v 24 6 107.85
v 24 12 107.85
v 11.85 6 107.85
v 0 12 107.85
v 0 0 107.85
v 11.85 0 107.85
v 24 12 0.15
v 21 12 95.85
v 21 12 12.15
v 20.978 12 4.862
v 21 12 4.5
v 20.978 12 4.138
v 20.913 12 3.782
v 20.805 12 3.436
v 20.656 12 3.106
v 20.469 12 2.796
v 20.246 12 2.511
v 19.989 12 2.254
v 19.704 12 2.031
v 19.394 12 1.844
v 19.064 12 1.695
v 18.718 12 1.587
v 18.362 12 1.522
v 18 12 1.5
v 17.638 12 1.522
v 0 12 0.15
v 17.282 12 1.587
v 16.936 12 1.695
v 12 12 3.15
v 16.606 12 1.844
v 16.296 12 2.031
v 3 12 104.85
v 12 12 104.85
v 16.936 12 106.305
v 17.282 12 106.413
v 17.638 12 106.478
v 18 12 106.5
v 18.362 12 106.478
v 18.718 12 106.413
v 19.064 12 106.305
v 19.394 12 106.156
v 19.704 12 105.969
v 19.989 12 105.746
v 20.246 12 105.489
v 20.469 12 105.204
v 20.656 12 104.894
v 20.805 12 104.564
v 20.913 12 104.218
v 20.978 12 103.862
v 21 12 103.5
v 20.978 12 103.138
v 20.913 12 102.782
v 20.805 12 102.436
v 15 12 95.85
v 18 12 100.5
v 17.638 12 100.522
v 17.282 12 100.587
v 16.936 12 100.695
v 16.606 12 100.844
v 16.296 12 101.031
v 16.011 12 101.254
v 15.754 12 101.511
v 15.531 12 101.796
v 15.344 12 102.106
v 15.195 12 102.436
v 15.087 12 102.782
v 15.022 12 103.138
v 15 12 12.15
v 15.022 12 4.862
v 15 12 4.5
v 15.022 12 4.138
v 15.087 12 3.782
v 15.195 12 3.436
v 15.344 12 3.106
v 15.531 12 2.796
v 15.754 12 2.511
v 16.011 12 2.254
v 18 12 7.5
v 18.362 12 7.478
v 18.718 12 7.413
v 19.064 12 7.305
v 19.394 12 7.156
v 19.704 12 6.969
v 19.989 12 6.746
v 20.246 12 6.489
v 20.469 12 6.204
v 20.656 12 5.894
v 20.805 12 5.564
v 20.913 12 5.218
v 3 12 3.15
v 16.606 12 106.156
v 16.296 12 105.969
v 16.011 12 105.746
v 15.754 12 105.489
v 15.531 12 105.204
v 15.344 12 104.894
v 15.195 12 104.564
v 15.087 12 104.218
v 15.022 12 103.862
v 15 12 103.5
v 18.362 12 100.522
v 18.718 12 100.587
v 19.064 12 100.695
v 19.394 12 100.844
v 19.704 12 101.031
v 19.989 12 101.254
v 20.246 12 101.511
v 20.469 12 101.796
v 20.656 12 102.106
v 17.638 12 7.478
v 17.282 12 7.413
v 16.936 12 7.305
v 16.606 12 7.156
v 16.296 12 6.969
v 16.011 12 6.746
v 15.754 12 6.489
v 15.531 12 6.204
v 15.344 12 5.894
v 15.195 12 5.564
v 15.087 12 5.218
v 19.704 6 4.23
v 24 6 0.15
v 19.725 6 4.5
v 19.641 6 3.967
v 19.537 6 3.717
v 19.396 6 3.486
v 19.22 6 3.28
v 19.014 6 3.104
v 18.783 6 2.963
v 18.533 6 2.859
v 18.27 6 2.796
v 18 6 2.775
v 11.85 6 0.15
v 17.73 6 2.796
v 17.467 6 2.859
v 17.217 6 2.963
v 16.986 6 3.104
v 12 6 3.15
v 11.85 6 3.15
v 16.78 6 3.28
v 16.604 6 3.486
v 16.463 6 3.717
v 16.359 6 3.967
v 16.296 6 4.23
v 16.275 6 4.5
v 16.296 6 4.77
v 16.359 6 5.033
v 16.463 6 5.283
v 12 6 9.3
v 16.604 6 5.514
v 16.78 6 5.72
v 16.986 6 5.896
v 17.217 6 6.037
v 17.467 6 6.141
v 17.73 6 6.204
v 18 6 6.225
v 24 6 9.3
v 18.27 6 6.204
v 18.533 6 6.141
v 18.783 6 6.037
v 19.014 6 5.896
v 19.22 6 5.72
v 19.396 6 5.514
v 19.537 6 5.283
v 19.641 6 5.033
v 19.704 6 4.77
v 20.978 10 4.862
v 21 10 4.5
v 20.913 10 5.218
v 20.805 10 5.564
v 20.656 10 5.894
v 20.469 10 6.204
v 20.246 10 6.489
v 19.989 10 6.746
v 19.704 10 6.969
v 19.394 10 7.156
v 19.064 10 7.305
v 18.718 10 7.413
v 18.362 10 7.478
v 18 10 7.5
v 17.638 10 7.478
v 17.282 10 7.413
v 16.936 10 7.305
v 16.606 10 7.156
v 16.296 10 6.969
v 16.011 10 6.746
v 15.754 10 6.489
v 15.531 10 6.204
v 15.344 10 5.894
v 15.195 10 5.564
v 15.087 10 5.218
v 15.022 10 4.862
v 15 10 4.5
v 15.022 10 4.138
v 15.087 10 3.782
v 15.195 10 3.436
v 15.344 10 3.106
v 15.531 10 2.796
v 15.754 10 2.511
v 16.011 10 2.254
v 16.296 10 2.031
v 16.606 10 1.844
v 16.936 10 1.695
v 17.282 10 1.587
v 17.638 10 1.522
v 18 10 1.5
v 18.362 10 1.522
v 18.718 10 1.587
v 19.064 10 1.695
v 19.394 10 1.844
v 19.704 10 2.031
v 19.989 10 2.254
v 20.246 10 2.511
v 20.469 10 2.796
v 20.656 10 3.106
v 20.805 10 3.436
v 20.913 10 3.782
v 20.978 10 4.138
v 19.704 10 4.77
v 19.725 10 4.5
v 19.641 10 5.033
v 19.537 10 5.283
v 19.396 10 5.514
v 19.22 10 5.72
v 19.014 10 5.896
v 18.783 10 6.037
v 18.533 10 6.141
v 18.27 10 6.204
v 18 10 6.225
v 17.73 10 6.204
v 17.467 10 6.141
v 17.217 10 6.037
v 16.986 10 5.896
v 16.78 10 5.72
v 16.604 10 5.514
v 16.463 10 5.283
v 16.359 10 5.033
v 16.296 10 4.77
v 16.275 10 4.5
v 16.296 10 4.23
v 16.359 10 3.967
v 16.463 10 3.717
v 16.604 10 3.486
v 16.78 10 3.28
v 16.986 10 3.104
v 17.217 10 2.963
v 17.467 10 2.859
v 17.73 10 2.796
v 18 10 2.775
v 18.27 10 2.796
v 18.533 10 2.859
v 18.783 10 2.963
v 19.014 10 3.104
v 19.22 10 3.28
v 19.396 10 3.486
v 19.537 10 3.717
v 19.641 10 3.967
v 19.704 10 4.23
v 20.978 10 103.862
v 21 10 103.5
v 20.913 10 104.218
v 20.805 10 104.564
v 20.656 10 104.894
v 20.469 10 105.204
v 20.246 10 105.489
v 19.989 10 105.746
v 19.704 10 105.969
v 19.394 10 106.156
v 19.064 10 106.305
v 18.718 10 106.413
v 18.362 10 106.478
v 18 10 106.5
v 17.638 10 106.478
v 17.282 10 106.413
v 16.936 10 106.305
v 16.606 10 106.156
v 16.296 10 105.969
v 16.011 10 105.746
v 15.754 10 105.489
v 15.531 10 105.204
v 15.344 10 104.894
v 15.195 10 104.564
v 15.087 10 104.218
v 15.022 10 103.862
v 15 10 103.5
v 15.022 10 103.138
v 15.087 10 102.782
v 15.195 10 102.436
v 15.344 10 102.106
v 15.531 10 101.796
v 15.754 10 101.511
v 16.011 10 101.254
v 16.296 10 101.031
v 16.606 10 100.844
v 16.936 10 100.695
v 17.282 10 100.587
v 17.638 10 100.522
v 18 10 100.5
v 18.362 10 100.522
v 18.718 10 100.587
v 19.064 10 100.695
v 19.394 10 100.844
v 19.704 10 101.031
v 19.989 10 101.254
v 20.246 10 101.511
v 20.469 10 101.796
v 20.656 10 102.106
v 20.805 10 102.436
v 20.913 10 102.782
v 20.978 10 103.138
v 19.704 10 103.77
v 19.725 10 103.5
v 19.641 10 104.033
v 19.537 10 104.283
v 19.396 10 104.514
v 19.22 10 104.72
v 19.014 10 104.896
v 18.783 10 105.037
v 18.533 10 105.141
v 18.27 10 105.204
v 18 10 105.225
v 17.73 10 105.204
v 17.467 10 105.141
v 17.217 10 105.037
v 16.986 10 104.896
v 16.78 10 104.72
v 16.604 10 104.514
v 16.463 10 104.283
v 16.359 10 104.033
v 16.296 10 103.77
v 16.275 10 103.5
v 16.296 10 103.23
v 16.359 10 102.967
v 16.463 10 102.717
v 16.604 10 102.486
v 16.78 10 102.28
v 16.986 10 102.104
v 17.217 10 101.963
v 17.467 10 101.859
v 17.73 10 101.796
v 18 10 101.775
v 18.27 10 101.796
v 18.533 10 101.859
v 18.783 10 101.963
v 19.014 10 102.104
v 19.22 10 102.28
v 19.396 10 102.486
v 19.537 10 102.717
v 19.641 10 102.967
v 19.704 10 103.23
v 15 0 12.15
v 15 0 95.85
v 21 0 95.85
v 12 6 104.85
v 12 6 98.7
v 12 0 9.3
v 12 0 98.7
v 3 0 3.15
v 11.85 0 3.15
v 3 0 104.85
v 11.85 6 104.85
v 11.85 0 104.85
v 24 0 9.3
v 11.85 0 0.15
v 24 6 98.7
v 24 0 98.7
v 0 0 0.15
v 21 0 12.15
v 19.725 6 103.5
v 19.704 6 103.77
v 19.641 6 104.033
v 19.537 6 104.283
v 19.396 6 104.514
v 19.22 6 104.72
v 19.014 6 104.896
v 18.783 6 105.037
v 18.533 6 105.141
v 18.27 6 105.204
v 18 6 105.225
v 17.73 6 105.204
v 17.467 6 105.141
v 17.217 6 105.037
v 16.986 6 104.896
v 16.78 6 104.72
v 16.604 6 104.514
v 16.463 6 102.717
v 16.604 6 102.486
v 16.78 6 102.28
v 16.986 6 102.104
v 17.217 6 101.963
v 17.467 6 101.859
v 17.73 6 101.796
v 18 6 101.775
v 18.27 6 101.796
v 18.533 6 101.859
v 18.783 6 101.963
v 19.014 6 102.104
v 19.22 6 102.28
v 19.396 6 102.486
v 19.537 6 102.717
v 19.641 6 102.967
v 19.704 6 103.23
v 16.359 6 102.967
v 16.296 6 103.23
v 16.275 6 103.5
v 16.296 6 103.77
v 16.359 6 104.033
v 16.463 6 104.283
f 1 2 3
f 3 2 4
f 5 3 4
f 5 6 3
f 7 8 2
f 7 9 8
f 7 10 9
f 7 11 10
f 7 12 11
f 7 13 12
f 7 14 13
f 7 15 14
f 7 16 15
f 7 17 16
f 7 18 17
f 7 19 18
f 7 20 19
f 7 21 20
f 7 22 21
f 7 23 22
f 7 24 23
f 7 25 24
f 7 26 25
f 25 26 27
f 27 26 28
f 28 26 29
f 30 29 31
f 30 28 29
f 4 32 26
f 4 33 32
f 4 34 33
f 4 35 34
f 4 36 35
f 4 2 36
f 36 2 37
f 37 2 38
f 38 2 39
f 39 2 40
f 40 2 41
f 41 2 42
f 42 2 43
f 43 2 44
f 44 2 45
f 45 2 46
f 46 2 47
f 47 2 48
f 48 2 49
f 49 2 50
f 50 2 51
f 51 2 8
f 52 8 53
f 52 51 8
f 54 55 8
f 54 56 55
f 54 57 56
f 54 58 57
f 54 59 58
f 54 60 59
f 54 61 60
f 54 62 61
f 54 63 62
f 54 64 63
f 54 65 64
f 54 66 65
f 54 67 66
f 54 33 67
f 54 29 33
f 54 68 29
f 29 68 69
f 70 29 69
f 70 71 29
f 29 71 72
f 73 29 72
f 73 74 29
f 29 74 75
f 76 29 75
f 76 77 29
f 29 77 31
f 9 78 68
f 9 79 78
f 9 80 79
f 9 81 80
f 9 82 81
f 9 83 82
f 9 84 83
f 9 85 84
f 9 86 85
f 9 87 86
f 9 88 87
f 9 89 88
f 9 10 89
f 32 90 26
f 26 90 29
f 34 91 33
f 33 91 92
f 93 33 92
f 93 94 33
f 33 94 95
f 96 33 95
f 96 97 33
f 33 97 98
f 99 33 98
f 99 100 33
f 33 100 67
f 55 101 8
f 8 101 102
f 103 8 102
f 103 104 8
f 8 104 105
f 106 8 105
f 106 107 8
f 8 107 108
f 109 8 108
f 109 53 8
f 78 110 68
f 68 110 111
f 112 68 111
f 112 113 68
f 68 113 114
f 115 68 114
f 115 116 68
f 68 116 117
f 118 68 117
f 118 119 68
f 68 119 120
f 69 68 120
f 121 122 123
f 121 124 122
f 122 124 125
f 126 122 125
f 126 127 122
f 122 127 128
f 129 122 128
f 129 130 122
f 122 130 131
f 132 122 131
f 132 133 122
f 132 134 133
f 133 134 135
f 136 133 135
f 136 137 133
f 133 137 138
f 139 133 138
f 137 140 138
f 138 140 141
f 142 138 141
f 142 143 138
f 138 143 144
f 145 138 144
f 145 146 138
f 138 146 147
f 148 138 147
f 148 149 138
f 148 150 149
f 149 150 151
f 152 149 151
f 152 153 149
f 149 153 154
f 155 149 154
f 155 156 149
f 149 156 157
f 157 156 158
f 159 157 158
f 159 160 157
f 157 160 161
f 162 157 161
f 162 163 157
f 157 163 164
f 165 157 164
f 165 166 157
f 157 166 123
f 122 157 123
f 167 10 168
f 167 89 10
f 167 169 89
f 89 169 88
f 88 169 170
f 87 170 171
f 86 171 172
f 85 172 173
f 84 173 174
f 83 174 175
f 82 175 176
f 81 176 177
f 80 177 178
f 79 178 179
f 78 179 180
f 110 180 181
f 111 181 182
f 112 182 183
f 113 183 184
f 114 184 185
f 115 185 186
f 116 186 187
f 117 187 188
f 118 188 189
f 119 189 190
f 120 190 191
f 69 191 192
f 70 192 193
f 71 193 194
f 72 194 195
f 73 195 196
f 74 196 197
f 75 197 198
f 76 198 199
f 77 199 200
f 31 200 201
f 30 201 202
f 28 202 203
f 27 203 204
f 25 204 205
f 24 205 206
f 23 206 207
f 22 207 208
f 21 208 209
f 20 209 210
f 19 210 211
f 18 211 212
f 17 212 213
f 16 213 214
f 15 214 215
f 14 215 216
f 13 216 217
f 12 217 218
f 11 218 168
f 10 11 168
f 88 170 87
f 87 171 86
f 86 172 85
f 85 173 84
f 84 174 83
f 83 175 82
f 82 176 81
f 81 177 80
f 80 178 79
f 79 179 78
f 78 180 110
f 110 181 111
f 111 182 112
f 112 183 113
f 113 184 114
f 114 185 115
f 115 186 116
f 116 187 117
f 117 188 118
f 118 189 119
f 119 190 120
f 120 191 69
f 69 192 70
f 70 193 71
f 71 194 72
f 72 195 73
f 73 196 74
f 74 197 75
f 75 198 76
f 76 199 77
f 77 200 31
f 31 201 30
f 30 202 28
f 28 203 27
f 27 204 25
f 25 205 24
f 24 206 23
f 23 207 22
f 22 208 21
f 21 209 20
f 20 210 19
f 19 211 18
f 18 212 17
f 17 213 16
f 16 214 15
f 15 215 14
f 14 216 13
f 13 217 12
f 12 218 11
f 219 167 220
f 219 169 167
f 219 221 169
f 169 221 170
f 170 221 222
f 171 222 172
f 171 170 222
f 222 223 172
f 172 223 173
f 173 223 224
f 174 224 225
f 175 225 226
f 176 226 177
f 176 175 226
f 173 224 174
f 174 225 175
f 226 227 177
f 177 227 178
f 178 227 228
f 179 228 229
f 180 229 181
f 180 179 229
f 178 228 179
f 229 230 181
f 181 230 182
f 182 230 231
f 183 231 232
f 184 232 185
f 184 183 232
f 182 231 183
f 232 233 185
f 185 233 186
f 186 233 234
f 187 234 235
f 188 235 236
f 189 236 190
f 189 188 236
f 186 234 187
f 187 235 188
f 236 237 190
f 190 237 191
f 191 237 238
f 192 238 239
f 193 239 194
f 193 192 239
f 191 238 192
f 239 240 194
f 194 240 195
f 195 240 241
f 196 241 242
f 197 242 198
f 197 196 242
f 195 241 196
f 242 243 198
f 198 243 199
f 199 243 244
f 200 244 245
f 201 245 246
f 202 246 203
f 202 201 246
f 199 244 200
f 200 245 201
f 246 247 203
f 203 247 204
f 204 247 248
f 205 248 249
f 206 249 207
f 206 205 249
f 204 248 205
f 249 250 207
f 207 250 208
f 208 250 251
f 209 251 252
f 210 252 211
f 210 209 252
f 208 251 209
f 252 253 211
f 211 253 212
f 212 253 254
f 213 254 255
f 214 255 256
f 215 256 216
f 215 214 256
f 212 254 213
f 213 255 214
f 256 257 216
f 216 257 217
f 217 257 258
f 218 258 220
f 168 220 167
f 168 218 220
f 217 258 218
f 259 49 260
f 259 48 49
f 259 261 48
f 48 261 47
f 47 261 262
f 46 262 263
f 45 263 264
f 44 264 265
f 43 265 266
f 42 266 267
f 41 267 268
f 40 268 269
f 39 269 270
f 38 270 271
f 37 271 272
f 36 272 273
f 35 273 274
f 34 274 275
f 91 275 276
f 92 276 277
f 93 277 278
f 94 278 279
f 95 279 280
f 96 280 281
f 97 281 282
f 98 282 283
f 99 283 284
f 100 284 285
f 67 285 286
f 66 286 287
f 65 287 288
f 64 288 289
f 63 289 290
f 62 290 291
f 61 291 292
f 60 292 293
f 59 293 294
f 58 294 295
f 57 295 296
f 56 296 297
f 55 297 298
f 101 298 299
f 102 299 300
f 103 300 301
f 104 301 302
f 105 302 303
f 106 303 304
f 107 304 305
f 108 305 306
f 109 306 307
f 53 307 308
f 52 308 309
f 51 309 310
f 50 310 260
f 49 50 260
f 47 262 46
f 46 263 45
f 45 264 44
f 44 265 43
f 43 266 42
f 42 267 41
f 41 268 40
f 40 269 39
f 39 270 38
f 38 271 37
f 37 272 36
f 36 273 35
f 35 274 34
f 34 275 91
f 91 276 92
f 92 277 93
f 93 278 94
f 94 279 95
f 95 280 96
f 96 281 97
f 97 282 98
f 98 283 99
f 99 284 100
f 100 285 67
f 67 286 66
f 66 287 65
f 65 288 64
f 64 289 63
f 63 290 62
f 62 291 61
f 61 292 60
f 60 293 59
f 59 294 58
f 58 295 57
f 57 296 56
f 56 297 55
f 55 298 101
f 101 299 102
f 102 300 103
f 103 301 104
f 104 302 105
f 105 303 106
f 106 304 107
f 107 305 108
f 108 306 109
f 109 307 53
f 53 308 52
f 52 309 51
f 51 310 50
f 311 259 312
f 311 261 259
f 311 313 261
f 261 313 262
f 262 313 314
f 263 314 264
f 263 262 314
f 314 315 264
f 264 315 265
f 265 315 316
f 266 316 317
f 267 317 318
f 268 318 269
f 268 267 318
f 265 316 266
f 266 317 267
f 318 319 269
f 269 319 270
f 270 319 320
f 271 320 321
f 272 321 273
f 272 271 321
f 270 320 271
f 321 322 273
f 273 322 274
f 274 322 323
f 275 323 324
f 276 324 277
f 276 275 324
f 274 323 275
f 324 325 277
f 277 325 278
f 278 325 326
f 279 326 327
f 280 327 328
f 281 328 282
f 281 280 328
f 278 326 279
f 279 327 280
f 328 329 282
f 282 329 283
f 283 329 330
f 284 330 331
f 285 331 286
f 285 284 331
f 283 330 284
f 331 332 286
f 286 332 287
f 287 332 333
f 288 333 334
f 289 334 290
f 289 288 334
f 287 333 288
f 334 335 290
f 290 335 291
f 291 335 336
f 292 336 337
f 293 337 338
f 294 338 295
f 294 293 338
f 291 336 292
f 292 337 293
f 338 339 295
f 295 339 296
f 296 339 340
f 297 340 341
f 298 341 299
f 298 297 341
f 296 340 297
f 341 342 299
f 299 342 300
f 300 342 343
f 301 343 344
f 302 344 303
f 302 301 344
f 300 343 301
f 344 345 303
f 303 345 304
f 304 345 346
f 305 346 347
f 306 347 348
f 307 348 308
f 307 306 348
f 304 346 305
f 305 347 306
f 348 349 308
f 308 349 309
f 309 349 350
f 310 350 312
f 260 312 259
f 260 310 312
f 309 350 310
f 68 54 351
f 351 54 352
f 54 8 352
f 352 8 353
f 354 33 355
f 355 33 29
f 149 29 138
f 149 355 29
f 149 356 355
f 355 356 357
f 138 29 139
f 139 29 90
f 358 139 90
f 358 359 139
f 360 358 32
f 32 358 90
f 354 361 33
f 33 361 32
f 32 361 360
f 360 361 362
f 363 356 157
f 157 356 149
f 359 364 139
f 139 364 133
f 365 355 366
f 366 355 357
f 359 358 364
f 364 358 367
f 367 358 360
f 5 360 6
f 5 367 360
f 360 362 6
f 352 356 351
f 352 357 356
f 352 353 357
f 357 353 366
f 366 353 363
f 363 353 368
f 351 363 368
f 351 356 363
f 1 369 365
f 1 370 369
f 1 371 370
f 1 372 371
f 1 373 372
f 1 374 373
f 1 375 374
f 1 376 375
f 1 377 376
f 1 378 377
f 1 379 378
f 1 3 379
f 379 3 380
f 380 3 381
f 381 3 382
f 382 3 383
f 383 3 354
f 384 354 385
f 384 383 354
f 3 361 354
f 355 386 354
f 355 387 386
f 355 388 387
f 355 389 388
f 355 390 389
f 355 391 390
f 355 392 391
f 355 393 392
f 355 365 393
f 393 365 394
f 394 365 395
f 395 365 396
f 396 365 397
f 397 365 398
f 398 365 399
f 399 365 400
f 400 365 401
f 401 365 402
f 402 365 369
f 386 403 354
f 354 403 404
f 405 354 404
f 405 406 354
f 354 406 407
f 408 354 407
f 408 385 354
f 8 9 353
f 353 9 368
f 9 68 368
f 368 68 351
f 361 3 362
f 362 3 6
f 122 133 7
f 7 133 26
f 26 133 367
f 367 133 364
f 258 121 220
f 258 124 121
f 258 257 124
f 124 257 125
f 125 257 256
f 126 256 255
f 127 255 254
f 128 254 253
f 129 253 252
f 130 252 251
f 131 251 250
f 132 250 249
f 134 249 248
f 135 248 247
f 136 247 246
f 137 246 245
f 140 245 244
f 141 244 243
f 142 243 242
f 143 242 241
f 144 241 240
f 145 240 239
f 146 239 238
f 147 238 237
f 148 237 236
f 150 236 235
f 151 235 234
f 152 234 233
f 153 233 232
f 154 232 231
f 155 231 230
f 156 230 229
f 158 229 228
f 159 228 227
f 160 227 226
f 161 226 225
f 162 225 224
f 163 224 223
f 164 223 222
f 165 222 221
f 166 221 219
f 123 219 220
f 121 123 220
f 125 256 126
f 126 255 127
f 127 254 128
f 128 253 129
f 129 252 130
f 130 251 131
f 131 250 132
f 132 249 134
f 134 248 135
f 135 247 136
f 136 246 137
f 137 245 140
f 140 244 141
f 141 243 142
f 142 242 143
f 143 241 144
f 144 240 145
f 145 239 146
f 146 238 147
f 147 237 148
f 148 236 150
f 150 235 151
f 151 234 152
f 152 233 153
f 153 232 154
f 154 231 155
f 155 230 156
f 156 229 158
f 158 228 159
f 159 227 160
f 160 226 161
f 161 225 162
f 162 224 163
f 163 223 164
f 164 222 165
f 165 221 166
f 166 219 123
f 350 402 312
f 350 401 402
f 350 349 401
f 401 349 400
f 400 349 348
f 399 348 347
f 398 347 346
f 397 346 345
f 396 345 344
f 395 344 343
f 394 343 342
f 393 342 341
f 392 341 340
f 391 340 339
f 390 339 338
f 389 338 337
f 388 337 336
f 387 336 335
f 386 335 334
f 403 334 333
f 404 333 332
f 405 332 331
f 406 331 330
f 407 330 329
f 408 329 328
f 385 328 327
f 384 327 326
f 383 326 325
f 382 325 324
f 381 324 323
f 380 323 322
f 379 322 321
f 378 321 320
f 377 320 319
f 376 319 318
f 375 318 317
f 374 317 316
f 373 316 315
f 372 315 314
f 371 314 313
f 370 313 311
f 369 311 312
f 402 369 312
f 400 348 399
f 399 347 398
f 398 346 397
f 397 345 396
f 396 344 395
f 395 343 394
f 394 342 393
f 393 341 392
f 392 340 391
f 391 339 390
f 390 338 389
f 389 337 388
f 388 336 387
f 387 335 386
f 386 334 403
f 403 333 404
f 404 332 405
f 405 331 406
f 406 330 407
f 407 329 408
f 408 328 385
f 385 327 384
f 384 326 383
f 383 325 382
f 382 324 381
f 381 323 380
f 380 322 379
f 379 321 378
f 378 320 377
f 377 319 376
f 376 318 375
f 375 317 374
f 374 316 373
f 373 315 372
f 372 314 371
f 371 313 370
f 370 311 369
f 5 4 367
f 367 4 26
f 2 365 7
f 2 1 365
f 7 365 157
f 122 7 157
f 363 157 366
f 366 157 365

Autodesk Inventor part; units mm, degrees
ref_plane "YZ Plane" through (0, 0, 0) normal (1, 0, 0) x (0, 1, 0)
ref_plane "XZ Plane" through (0, 0, 0) normal (0, 1, 0) x (-1, 0, 0)
ref_plane "XY Plane" through (0, 0, 0) normal (0, 0, 1) x (1, 0, 0)
sketch "Sketch1" plane through (0, 0, 0) normal (0, 0, 1) x (1, 0, 0)
  line L0 (0, 0) -> (36, 0)
  line L1 (36, 0) -> (36, 12)
  line L2 (36, 12) -> (24, 12)
  line L3 (24, 12) -> (24, 22)
  line L4 (24, 22) -> (12, 22)
  line L5 (12, 22) -> (12, 12)
  line L6 (12, 12) -> (0, 12)
  line L7 (0, 12) -> (0, 0)
  dimension "d0" = 36
  dimension "d1" = 12
  dimension "d2" = 12
  dimension "d3" = 10
  dimension "d4" = 12
extrude "Extrusion1" add sketch "Sketch1" along normal blind 108
sketch "Sketch2" plane through (0, 0, 0) normal (0, -1, 0) x (1, 0, 0)
  circle A0 centre (18, 4.5) radius 1.725
  line L0 (0, 0) -> (36, 0) projected
  line L1 (36, 0) -> (36, 108) projected
  circle A1 centre (18, 103.5) radius 1.725
  line L2 (0, 108) -> (36, 108) projected
  dimension "d7" = 3.45
  dimension "d8" = 4.5
  dimension "d9" = 18
  dimension "d10" = 3.45
  dimension "d11" = 18
  dimension "d12" = 4.5
extrude "Extrusion2" cut sketch "Sketch2" against normal blind 20
sketch "Sketch3" plane through (12, 22, 0) normal (0, 1, 0) x (1, 0, 0)
  circle A0 centre (6, -4.5) radius 1.725 projected
  circle A1 centre (6, -4.5) radius 3
  circle A2 centre (6, -103.5) radius 1.725 projected
  circle A3 centre (6, -103.5) radius 3
  point P0 (-12, 0)
  dimension "d15" = 6
  dimension "d16" = 6
extrude "Extrusion3" cut sketch "Sketch3" against normal blind 2 contours A0 | A1 | A2 | A3
sketch "Sketch4" plane through (36, 0, 0) normal (1, 0, 0) x (0, 0, -1)
  line L0 (-108, 0) -> (-107.85, 0)
  line L1 (0, 0) -> (-108, 0) projected
  line L2 (-107.85, 0) -> (-107.85, 12)
  line L3 (0, 12) -> (-108, 12) projected
  line L4 (-108, 0) -> (-108, 12) projected
  line L5 (-108, 12) -> (-108, 0)
  line L6 (-108, 22) -> (-107.85, 22)
  line L7 (-107.85, 12) -> (-108, 12)
  line L8 (0, 0) -> (-0.15, 0)
  line L9 (-0.15, 0) -> (-0.15, 12)
  line L10 (-0.15, 12) -> (0, 12)
  line L11 (0, 12) -> (0, 0)
  line L12 (0, 22) -> (-0.15, 22)
  line L13 (-0.15, 12) -> (0, 12)
  dimension "d19" = 0.15
  dimension "d20" = 12
  dimension "d21" = 0.15
  dimension "d22" = 0.15
extrude "Extrusion4" cut sketch "Sketch4" against normal through all contours L4 L3 L2 L0 | L9 L3 L11 L1
sketch "Sketch5" plane through (24, 22, 108) normal (1, 0, 0) x (0, 0, -1)
  line L0 (108, -10) -> (108, 0) projected
  line L1 (108, 0) -> (0, 0) projected
  line L2 (108, -10) -> (107.85, -10)
  line L3 (107.85, -10) -> (107.85, 0)
  line L4 (107.85, 0) -> (108, 0)
  line L5 (108, 0) -> (108, -10)
  line L6 (0.15, -10) -> (0, -10) projected
  line L7 (0, -10) -> (0, 0) projected
  line L8 (0.15, -10) -> (0, -10)
  line L9 (0, -10) -> (0, 0)
  line L10 (0, 0) -> (0.15, 0)
  line L11 (0.15, 0) -> (0.15, -10)
  point P0 (108, -22)
  dimension "d25" = 0.15
extrude "Extrusion5" cut sketch "Sketch5" against normal through all
sketch "Sketch6" plane through (12, 22, 0.15) normal (0, 1, 0) x (1, 0, 0)
  point P0 (0, -107.7)
sketch "Sketch7" plane through (0, 0, 107.85) normal (0, -1, 0) x (1, 0, 0)
  line L0 (0, -107.7) -> (36, -107.7) projected
  line L1 (11.85, -107.7) -> (24.15, -107.7)
  line L2 (24.15, -107.7) -> (24.15, -98.55)
  line L3 (24.15, -98.55) -> (11.85, -98.55)
  line L4 (11.85, -98.55) -> (11.85, -107.7)
  line L5 (0, 0) -> (12, 0) projected
  line L6 (11.85, 0) -> (24.15, 0)
  line L7 (24.15, 0) -> (24.15, -9.15)
  line L8 (24.15, -9.15) -> (11.85, -9.15)
  line L9 (11.85, -9.15) -> (11.85, 0)
  line L10 (36, -107.7) -> (36, 0) projected
  point P0 (0, -107.85)
  dimension "d30" = 11.85
  dimension "d31" = 11.85
  dimension "d32" = 9.15
  dimension "d33" = 11.85
  dimension "d34" = 11.85
  dimension "d35" = 9.15
extrude "Extrusion6" cut sketch "Sketch7" against normal blind 6
sketch "Sketch8" plane through (36, 0, 0.15) normal (0, -1, 0) x (1, 0, 0)
  line L0 (-21, 95.7) -> (-15, 95.7)
  line L1 (-15, 95.7) -> (-15, 12)
  line L2 (-15, 12) -> (-21, 12)
  line L3 (-21, 12) -> (-21, 95.7)
  line L4 (-11.85, 0) -> (-24.15, 0) projected
  line L5 (0, 107.7) -> (-11.85, 107.7) projected
  line L6 (-24, 0) -> (-24, 107.7) projected
  line L7 (-12, 0) -> (-12, 107.7) projected
  point P0 (-36, -0.15)
  dimension "d38" = 12
  dimension "d39" = 12
  dimension "d40" = 3
  dimension "d41" = 3
extrude "Extrusion7" cut sketch "Sketch8" against normal through all
sketch "Sketch9" plane through (24, 12, 107.85) normal (0, 1, 0) x (1, 0, 0)
  line L0 (9, 3) -> (0, 3)
  line L1 (0, 3) -> (0, 104.7)
  line L2 (0, 104.7) -> (9, 104.7)
  line L3 (9, 104.7) -> (9, 3)
  line L4 (-12, 3) -> (-21, 3)
  line L5 (-21, 3) -> (-21, 104.7)
  line L6 (-21, 104.7) -> (-12, 104.7)
  line L7 (-12, 104.7) -> (-12, 3)
  line L8 (12, 0) -> (0.15, 0) projected
  line L9 (12, 107.7) -> (0, 107.7) projected
  line L10 (12, 107.7) -> (12, 0) projected
  line L11 (-24, 107.7) -> (-24, 0) projected
  line L12 (-12, 107.7) -> (-24, 107.7) projected
  line L13 (-24, 0) -> (-12, 0) projected
  line L14 (-12, 107.7) -> (-12, 0) projected
  line L15 (0, 107.7) -> (0, 0) projected
  point P0 (-24, 107.85)
  dimension "d44" = 3
  dimension "d45" = 3
  dimension "d46" = 3
  dimension "d47" = 3
  dimension "d48" = 3
  dimension "d49" = 3
  dimension "d50" = 0
  dimension "d51" = 0
extrude "Extrusion8" cut sketch "Sketch9" against normal through all contours L0 L1 L2 L3 | L4 L5 L6 L7
sketch "Sketch10" plane through (12, 0, 98.7) normal (0, -1, 0) x (1, 0, 0)
  line L0 (3, -86.55) -> (3, -2.85) projected
  line L1 (9, -2.85) -> (9, -86.55) projected
  line L2 (3, -2.85) -> (9, -2.85)
  line L3 (9, -2.85) -> (9, -86.55)
  line L4 (9, -86.55) -> (3, -86.55)
  line L5 (3, -86.55) -> (3, -2.85)
  line L6 (0, 0) -> (0, -89.4) projected
  line L7 (0, 0) -> (12, 0)
  line L8 (12, 0) -> (12, -89.4)
  line L9 (12, -89.4) -> (0, -89.4)
  line L10 (0, -89.4) -> (0, 0)
  line L11 (12, -89.4) -> (0, -89.4)
  line L12 (0, -89.4) -> (0, 0)
  line L13 (0, 0) -> (12, 0)
  line L14 (12, 0) -> (12, -89.4)
  point P0 (-12, -98.7)
sketch "Sketch11" plane through (24, 12, 0.15) normal (1, 0, 0) x (0, 0, -1)
  line L0 (-107.7, 0) -> (-107.7, 10) projected
  line L1 (0, 0) -> (-107.7, 0) projected
  line L2 (-107.7, 10) -> (0, 10)
  line L3 (0, 10) -> (0, 0)
  line L4 (0, 0) -> (-107.7, 0)
  line L5 (-107.7, 0) -> (-107.7, 10)
  point P0 (0.15, -12)
extrude "Extrusion9" cut sketch "Sketch11" against normal through all
sketch "Sketch12" plane through (0, 12, 107.85) normal (0, 1, 0) x (1, 0, 0)
  circle A0 centre (18, 103.35) radius 1.725 projected
  circle A1 centre (18, 103.35) radius 3
  circle A2 centre (18, 4.35) radius 1.725 projected
  circle A3 centre (18, 4.35) radius 3
  point P0 (0, 107.85)
  dimension "d56" = 6
  dimension "d57" = 6
extrude "Extrusion10" cut sketch "Sketch12" against normal blind 2
sketch "Sketch13" plane through (0, 12, 107.85) normal (0, 1, 0) x (1, 0, 0)
  line L0 (36, 107.7) -> (0, 107.7) projected
  line L1 (36, 0) -> (0, 0) projected
  line L2 (36, 107.7) -> (24, 107.7)
  line L3 (24, 107.7) -> (24, 0)
  line L4 (24, 0) -> (36, 0)
  line L5 (36, 0) -> (36, 107.7)
  point P0 (0, 107.85)
  dimension "d60" = 12
extrude "Extrusion11" cut sketch "Sketch13" against normal through all
properties part number "topCutCenterBeam"
